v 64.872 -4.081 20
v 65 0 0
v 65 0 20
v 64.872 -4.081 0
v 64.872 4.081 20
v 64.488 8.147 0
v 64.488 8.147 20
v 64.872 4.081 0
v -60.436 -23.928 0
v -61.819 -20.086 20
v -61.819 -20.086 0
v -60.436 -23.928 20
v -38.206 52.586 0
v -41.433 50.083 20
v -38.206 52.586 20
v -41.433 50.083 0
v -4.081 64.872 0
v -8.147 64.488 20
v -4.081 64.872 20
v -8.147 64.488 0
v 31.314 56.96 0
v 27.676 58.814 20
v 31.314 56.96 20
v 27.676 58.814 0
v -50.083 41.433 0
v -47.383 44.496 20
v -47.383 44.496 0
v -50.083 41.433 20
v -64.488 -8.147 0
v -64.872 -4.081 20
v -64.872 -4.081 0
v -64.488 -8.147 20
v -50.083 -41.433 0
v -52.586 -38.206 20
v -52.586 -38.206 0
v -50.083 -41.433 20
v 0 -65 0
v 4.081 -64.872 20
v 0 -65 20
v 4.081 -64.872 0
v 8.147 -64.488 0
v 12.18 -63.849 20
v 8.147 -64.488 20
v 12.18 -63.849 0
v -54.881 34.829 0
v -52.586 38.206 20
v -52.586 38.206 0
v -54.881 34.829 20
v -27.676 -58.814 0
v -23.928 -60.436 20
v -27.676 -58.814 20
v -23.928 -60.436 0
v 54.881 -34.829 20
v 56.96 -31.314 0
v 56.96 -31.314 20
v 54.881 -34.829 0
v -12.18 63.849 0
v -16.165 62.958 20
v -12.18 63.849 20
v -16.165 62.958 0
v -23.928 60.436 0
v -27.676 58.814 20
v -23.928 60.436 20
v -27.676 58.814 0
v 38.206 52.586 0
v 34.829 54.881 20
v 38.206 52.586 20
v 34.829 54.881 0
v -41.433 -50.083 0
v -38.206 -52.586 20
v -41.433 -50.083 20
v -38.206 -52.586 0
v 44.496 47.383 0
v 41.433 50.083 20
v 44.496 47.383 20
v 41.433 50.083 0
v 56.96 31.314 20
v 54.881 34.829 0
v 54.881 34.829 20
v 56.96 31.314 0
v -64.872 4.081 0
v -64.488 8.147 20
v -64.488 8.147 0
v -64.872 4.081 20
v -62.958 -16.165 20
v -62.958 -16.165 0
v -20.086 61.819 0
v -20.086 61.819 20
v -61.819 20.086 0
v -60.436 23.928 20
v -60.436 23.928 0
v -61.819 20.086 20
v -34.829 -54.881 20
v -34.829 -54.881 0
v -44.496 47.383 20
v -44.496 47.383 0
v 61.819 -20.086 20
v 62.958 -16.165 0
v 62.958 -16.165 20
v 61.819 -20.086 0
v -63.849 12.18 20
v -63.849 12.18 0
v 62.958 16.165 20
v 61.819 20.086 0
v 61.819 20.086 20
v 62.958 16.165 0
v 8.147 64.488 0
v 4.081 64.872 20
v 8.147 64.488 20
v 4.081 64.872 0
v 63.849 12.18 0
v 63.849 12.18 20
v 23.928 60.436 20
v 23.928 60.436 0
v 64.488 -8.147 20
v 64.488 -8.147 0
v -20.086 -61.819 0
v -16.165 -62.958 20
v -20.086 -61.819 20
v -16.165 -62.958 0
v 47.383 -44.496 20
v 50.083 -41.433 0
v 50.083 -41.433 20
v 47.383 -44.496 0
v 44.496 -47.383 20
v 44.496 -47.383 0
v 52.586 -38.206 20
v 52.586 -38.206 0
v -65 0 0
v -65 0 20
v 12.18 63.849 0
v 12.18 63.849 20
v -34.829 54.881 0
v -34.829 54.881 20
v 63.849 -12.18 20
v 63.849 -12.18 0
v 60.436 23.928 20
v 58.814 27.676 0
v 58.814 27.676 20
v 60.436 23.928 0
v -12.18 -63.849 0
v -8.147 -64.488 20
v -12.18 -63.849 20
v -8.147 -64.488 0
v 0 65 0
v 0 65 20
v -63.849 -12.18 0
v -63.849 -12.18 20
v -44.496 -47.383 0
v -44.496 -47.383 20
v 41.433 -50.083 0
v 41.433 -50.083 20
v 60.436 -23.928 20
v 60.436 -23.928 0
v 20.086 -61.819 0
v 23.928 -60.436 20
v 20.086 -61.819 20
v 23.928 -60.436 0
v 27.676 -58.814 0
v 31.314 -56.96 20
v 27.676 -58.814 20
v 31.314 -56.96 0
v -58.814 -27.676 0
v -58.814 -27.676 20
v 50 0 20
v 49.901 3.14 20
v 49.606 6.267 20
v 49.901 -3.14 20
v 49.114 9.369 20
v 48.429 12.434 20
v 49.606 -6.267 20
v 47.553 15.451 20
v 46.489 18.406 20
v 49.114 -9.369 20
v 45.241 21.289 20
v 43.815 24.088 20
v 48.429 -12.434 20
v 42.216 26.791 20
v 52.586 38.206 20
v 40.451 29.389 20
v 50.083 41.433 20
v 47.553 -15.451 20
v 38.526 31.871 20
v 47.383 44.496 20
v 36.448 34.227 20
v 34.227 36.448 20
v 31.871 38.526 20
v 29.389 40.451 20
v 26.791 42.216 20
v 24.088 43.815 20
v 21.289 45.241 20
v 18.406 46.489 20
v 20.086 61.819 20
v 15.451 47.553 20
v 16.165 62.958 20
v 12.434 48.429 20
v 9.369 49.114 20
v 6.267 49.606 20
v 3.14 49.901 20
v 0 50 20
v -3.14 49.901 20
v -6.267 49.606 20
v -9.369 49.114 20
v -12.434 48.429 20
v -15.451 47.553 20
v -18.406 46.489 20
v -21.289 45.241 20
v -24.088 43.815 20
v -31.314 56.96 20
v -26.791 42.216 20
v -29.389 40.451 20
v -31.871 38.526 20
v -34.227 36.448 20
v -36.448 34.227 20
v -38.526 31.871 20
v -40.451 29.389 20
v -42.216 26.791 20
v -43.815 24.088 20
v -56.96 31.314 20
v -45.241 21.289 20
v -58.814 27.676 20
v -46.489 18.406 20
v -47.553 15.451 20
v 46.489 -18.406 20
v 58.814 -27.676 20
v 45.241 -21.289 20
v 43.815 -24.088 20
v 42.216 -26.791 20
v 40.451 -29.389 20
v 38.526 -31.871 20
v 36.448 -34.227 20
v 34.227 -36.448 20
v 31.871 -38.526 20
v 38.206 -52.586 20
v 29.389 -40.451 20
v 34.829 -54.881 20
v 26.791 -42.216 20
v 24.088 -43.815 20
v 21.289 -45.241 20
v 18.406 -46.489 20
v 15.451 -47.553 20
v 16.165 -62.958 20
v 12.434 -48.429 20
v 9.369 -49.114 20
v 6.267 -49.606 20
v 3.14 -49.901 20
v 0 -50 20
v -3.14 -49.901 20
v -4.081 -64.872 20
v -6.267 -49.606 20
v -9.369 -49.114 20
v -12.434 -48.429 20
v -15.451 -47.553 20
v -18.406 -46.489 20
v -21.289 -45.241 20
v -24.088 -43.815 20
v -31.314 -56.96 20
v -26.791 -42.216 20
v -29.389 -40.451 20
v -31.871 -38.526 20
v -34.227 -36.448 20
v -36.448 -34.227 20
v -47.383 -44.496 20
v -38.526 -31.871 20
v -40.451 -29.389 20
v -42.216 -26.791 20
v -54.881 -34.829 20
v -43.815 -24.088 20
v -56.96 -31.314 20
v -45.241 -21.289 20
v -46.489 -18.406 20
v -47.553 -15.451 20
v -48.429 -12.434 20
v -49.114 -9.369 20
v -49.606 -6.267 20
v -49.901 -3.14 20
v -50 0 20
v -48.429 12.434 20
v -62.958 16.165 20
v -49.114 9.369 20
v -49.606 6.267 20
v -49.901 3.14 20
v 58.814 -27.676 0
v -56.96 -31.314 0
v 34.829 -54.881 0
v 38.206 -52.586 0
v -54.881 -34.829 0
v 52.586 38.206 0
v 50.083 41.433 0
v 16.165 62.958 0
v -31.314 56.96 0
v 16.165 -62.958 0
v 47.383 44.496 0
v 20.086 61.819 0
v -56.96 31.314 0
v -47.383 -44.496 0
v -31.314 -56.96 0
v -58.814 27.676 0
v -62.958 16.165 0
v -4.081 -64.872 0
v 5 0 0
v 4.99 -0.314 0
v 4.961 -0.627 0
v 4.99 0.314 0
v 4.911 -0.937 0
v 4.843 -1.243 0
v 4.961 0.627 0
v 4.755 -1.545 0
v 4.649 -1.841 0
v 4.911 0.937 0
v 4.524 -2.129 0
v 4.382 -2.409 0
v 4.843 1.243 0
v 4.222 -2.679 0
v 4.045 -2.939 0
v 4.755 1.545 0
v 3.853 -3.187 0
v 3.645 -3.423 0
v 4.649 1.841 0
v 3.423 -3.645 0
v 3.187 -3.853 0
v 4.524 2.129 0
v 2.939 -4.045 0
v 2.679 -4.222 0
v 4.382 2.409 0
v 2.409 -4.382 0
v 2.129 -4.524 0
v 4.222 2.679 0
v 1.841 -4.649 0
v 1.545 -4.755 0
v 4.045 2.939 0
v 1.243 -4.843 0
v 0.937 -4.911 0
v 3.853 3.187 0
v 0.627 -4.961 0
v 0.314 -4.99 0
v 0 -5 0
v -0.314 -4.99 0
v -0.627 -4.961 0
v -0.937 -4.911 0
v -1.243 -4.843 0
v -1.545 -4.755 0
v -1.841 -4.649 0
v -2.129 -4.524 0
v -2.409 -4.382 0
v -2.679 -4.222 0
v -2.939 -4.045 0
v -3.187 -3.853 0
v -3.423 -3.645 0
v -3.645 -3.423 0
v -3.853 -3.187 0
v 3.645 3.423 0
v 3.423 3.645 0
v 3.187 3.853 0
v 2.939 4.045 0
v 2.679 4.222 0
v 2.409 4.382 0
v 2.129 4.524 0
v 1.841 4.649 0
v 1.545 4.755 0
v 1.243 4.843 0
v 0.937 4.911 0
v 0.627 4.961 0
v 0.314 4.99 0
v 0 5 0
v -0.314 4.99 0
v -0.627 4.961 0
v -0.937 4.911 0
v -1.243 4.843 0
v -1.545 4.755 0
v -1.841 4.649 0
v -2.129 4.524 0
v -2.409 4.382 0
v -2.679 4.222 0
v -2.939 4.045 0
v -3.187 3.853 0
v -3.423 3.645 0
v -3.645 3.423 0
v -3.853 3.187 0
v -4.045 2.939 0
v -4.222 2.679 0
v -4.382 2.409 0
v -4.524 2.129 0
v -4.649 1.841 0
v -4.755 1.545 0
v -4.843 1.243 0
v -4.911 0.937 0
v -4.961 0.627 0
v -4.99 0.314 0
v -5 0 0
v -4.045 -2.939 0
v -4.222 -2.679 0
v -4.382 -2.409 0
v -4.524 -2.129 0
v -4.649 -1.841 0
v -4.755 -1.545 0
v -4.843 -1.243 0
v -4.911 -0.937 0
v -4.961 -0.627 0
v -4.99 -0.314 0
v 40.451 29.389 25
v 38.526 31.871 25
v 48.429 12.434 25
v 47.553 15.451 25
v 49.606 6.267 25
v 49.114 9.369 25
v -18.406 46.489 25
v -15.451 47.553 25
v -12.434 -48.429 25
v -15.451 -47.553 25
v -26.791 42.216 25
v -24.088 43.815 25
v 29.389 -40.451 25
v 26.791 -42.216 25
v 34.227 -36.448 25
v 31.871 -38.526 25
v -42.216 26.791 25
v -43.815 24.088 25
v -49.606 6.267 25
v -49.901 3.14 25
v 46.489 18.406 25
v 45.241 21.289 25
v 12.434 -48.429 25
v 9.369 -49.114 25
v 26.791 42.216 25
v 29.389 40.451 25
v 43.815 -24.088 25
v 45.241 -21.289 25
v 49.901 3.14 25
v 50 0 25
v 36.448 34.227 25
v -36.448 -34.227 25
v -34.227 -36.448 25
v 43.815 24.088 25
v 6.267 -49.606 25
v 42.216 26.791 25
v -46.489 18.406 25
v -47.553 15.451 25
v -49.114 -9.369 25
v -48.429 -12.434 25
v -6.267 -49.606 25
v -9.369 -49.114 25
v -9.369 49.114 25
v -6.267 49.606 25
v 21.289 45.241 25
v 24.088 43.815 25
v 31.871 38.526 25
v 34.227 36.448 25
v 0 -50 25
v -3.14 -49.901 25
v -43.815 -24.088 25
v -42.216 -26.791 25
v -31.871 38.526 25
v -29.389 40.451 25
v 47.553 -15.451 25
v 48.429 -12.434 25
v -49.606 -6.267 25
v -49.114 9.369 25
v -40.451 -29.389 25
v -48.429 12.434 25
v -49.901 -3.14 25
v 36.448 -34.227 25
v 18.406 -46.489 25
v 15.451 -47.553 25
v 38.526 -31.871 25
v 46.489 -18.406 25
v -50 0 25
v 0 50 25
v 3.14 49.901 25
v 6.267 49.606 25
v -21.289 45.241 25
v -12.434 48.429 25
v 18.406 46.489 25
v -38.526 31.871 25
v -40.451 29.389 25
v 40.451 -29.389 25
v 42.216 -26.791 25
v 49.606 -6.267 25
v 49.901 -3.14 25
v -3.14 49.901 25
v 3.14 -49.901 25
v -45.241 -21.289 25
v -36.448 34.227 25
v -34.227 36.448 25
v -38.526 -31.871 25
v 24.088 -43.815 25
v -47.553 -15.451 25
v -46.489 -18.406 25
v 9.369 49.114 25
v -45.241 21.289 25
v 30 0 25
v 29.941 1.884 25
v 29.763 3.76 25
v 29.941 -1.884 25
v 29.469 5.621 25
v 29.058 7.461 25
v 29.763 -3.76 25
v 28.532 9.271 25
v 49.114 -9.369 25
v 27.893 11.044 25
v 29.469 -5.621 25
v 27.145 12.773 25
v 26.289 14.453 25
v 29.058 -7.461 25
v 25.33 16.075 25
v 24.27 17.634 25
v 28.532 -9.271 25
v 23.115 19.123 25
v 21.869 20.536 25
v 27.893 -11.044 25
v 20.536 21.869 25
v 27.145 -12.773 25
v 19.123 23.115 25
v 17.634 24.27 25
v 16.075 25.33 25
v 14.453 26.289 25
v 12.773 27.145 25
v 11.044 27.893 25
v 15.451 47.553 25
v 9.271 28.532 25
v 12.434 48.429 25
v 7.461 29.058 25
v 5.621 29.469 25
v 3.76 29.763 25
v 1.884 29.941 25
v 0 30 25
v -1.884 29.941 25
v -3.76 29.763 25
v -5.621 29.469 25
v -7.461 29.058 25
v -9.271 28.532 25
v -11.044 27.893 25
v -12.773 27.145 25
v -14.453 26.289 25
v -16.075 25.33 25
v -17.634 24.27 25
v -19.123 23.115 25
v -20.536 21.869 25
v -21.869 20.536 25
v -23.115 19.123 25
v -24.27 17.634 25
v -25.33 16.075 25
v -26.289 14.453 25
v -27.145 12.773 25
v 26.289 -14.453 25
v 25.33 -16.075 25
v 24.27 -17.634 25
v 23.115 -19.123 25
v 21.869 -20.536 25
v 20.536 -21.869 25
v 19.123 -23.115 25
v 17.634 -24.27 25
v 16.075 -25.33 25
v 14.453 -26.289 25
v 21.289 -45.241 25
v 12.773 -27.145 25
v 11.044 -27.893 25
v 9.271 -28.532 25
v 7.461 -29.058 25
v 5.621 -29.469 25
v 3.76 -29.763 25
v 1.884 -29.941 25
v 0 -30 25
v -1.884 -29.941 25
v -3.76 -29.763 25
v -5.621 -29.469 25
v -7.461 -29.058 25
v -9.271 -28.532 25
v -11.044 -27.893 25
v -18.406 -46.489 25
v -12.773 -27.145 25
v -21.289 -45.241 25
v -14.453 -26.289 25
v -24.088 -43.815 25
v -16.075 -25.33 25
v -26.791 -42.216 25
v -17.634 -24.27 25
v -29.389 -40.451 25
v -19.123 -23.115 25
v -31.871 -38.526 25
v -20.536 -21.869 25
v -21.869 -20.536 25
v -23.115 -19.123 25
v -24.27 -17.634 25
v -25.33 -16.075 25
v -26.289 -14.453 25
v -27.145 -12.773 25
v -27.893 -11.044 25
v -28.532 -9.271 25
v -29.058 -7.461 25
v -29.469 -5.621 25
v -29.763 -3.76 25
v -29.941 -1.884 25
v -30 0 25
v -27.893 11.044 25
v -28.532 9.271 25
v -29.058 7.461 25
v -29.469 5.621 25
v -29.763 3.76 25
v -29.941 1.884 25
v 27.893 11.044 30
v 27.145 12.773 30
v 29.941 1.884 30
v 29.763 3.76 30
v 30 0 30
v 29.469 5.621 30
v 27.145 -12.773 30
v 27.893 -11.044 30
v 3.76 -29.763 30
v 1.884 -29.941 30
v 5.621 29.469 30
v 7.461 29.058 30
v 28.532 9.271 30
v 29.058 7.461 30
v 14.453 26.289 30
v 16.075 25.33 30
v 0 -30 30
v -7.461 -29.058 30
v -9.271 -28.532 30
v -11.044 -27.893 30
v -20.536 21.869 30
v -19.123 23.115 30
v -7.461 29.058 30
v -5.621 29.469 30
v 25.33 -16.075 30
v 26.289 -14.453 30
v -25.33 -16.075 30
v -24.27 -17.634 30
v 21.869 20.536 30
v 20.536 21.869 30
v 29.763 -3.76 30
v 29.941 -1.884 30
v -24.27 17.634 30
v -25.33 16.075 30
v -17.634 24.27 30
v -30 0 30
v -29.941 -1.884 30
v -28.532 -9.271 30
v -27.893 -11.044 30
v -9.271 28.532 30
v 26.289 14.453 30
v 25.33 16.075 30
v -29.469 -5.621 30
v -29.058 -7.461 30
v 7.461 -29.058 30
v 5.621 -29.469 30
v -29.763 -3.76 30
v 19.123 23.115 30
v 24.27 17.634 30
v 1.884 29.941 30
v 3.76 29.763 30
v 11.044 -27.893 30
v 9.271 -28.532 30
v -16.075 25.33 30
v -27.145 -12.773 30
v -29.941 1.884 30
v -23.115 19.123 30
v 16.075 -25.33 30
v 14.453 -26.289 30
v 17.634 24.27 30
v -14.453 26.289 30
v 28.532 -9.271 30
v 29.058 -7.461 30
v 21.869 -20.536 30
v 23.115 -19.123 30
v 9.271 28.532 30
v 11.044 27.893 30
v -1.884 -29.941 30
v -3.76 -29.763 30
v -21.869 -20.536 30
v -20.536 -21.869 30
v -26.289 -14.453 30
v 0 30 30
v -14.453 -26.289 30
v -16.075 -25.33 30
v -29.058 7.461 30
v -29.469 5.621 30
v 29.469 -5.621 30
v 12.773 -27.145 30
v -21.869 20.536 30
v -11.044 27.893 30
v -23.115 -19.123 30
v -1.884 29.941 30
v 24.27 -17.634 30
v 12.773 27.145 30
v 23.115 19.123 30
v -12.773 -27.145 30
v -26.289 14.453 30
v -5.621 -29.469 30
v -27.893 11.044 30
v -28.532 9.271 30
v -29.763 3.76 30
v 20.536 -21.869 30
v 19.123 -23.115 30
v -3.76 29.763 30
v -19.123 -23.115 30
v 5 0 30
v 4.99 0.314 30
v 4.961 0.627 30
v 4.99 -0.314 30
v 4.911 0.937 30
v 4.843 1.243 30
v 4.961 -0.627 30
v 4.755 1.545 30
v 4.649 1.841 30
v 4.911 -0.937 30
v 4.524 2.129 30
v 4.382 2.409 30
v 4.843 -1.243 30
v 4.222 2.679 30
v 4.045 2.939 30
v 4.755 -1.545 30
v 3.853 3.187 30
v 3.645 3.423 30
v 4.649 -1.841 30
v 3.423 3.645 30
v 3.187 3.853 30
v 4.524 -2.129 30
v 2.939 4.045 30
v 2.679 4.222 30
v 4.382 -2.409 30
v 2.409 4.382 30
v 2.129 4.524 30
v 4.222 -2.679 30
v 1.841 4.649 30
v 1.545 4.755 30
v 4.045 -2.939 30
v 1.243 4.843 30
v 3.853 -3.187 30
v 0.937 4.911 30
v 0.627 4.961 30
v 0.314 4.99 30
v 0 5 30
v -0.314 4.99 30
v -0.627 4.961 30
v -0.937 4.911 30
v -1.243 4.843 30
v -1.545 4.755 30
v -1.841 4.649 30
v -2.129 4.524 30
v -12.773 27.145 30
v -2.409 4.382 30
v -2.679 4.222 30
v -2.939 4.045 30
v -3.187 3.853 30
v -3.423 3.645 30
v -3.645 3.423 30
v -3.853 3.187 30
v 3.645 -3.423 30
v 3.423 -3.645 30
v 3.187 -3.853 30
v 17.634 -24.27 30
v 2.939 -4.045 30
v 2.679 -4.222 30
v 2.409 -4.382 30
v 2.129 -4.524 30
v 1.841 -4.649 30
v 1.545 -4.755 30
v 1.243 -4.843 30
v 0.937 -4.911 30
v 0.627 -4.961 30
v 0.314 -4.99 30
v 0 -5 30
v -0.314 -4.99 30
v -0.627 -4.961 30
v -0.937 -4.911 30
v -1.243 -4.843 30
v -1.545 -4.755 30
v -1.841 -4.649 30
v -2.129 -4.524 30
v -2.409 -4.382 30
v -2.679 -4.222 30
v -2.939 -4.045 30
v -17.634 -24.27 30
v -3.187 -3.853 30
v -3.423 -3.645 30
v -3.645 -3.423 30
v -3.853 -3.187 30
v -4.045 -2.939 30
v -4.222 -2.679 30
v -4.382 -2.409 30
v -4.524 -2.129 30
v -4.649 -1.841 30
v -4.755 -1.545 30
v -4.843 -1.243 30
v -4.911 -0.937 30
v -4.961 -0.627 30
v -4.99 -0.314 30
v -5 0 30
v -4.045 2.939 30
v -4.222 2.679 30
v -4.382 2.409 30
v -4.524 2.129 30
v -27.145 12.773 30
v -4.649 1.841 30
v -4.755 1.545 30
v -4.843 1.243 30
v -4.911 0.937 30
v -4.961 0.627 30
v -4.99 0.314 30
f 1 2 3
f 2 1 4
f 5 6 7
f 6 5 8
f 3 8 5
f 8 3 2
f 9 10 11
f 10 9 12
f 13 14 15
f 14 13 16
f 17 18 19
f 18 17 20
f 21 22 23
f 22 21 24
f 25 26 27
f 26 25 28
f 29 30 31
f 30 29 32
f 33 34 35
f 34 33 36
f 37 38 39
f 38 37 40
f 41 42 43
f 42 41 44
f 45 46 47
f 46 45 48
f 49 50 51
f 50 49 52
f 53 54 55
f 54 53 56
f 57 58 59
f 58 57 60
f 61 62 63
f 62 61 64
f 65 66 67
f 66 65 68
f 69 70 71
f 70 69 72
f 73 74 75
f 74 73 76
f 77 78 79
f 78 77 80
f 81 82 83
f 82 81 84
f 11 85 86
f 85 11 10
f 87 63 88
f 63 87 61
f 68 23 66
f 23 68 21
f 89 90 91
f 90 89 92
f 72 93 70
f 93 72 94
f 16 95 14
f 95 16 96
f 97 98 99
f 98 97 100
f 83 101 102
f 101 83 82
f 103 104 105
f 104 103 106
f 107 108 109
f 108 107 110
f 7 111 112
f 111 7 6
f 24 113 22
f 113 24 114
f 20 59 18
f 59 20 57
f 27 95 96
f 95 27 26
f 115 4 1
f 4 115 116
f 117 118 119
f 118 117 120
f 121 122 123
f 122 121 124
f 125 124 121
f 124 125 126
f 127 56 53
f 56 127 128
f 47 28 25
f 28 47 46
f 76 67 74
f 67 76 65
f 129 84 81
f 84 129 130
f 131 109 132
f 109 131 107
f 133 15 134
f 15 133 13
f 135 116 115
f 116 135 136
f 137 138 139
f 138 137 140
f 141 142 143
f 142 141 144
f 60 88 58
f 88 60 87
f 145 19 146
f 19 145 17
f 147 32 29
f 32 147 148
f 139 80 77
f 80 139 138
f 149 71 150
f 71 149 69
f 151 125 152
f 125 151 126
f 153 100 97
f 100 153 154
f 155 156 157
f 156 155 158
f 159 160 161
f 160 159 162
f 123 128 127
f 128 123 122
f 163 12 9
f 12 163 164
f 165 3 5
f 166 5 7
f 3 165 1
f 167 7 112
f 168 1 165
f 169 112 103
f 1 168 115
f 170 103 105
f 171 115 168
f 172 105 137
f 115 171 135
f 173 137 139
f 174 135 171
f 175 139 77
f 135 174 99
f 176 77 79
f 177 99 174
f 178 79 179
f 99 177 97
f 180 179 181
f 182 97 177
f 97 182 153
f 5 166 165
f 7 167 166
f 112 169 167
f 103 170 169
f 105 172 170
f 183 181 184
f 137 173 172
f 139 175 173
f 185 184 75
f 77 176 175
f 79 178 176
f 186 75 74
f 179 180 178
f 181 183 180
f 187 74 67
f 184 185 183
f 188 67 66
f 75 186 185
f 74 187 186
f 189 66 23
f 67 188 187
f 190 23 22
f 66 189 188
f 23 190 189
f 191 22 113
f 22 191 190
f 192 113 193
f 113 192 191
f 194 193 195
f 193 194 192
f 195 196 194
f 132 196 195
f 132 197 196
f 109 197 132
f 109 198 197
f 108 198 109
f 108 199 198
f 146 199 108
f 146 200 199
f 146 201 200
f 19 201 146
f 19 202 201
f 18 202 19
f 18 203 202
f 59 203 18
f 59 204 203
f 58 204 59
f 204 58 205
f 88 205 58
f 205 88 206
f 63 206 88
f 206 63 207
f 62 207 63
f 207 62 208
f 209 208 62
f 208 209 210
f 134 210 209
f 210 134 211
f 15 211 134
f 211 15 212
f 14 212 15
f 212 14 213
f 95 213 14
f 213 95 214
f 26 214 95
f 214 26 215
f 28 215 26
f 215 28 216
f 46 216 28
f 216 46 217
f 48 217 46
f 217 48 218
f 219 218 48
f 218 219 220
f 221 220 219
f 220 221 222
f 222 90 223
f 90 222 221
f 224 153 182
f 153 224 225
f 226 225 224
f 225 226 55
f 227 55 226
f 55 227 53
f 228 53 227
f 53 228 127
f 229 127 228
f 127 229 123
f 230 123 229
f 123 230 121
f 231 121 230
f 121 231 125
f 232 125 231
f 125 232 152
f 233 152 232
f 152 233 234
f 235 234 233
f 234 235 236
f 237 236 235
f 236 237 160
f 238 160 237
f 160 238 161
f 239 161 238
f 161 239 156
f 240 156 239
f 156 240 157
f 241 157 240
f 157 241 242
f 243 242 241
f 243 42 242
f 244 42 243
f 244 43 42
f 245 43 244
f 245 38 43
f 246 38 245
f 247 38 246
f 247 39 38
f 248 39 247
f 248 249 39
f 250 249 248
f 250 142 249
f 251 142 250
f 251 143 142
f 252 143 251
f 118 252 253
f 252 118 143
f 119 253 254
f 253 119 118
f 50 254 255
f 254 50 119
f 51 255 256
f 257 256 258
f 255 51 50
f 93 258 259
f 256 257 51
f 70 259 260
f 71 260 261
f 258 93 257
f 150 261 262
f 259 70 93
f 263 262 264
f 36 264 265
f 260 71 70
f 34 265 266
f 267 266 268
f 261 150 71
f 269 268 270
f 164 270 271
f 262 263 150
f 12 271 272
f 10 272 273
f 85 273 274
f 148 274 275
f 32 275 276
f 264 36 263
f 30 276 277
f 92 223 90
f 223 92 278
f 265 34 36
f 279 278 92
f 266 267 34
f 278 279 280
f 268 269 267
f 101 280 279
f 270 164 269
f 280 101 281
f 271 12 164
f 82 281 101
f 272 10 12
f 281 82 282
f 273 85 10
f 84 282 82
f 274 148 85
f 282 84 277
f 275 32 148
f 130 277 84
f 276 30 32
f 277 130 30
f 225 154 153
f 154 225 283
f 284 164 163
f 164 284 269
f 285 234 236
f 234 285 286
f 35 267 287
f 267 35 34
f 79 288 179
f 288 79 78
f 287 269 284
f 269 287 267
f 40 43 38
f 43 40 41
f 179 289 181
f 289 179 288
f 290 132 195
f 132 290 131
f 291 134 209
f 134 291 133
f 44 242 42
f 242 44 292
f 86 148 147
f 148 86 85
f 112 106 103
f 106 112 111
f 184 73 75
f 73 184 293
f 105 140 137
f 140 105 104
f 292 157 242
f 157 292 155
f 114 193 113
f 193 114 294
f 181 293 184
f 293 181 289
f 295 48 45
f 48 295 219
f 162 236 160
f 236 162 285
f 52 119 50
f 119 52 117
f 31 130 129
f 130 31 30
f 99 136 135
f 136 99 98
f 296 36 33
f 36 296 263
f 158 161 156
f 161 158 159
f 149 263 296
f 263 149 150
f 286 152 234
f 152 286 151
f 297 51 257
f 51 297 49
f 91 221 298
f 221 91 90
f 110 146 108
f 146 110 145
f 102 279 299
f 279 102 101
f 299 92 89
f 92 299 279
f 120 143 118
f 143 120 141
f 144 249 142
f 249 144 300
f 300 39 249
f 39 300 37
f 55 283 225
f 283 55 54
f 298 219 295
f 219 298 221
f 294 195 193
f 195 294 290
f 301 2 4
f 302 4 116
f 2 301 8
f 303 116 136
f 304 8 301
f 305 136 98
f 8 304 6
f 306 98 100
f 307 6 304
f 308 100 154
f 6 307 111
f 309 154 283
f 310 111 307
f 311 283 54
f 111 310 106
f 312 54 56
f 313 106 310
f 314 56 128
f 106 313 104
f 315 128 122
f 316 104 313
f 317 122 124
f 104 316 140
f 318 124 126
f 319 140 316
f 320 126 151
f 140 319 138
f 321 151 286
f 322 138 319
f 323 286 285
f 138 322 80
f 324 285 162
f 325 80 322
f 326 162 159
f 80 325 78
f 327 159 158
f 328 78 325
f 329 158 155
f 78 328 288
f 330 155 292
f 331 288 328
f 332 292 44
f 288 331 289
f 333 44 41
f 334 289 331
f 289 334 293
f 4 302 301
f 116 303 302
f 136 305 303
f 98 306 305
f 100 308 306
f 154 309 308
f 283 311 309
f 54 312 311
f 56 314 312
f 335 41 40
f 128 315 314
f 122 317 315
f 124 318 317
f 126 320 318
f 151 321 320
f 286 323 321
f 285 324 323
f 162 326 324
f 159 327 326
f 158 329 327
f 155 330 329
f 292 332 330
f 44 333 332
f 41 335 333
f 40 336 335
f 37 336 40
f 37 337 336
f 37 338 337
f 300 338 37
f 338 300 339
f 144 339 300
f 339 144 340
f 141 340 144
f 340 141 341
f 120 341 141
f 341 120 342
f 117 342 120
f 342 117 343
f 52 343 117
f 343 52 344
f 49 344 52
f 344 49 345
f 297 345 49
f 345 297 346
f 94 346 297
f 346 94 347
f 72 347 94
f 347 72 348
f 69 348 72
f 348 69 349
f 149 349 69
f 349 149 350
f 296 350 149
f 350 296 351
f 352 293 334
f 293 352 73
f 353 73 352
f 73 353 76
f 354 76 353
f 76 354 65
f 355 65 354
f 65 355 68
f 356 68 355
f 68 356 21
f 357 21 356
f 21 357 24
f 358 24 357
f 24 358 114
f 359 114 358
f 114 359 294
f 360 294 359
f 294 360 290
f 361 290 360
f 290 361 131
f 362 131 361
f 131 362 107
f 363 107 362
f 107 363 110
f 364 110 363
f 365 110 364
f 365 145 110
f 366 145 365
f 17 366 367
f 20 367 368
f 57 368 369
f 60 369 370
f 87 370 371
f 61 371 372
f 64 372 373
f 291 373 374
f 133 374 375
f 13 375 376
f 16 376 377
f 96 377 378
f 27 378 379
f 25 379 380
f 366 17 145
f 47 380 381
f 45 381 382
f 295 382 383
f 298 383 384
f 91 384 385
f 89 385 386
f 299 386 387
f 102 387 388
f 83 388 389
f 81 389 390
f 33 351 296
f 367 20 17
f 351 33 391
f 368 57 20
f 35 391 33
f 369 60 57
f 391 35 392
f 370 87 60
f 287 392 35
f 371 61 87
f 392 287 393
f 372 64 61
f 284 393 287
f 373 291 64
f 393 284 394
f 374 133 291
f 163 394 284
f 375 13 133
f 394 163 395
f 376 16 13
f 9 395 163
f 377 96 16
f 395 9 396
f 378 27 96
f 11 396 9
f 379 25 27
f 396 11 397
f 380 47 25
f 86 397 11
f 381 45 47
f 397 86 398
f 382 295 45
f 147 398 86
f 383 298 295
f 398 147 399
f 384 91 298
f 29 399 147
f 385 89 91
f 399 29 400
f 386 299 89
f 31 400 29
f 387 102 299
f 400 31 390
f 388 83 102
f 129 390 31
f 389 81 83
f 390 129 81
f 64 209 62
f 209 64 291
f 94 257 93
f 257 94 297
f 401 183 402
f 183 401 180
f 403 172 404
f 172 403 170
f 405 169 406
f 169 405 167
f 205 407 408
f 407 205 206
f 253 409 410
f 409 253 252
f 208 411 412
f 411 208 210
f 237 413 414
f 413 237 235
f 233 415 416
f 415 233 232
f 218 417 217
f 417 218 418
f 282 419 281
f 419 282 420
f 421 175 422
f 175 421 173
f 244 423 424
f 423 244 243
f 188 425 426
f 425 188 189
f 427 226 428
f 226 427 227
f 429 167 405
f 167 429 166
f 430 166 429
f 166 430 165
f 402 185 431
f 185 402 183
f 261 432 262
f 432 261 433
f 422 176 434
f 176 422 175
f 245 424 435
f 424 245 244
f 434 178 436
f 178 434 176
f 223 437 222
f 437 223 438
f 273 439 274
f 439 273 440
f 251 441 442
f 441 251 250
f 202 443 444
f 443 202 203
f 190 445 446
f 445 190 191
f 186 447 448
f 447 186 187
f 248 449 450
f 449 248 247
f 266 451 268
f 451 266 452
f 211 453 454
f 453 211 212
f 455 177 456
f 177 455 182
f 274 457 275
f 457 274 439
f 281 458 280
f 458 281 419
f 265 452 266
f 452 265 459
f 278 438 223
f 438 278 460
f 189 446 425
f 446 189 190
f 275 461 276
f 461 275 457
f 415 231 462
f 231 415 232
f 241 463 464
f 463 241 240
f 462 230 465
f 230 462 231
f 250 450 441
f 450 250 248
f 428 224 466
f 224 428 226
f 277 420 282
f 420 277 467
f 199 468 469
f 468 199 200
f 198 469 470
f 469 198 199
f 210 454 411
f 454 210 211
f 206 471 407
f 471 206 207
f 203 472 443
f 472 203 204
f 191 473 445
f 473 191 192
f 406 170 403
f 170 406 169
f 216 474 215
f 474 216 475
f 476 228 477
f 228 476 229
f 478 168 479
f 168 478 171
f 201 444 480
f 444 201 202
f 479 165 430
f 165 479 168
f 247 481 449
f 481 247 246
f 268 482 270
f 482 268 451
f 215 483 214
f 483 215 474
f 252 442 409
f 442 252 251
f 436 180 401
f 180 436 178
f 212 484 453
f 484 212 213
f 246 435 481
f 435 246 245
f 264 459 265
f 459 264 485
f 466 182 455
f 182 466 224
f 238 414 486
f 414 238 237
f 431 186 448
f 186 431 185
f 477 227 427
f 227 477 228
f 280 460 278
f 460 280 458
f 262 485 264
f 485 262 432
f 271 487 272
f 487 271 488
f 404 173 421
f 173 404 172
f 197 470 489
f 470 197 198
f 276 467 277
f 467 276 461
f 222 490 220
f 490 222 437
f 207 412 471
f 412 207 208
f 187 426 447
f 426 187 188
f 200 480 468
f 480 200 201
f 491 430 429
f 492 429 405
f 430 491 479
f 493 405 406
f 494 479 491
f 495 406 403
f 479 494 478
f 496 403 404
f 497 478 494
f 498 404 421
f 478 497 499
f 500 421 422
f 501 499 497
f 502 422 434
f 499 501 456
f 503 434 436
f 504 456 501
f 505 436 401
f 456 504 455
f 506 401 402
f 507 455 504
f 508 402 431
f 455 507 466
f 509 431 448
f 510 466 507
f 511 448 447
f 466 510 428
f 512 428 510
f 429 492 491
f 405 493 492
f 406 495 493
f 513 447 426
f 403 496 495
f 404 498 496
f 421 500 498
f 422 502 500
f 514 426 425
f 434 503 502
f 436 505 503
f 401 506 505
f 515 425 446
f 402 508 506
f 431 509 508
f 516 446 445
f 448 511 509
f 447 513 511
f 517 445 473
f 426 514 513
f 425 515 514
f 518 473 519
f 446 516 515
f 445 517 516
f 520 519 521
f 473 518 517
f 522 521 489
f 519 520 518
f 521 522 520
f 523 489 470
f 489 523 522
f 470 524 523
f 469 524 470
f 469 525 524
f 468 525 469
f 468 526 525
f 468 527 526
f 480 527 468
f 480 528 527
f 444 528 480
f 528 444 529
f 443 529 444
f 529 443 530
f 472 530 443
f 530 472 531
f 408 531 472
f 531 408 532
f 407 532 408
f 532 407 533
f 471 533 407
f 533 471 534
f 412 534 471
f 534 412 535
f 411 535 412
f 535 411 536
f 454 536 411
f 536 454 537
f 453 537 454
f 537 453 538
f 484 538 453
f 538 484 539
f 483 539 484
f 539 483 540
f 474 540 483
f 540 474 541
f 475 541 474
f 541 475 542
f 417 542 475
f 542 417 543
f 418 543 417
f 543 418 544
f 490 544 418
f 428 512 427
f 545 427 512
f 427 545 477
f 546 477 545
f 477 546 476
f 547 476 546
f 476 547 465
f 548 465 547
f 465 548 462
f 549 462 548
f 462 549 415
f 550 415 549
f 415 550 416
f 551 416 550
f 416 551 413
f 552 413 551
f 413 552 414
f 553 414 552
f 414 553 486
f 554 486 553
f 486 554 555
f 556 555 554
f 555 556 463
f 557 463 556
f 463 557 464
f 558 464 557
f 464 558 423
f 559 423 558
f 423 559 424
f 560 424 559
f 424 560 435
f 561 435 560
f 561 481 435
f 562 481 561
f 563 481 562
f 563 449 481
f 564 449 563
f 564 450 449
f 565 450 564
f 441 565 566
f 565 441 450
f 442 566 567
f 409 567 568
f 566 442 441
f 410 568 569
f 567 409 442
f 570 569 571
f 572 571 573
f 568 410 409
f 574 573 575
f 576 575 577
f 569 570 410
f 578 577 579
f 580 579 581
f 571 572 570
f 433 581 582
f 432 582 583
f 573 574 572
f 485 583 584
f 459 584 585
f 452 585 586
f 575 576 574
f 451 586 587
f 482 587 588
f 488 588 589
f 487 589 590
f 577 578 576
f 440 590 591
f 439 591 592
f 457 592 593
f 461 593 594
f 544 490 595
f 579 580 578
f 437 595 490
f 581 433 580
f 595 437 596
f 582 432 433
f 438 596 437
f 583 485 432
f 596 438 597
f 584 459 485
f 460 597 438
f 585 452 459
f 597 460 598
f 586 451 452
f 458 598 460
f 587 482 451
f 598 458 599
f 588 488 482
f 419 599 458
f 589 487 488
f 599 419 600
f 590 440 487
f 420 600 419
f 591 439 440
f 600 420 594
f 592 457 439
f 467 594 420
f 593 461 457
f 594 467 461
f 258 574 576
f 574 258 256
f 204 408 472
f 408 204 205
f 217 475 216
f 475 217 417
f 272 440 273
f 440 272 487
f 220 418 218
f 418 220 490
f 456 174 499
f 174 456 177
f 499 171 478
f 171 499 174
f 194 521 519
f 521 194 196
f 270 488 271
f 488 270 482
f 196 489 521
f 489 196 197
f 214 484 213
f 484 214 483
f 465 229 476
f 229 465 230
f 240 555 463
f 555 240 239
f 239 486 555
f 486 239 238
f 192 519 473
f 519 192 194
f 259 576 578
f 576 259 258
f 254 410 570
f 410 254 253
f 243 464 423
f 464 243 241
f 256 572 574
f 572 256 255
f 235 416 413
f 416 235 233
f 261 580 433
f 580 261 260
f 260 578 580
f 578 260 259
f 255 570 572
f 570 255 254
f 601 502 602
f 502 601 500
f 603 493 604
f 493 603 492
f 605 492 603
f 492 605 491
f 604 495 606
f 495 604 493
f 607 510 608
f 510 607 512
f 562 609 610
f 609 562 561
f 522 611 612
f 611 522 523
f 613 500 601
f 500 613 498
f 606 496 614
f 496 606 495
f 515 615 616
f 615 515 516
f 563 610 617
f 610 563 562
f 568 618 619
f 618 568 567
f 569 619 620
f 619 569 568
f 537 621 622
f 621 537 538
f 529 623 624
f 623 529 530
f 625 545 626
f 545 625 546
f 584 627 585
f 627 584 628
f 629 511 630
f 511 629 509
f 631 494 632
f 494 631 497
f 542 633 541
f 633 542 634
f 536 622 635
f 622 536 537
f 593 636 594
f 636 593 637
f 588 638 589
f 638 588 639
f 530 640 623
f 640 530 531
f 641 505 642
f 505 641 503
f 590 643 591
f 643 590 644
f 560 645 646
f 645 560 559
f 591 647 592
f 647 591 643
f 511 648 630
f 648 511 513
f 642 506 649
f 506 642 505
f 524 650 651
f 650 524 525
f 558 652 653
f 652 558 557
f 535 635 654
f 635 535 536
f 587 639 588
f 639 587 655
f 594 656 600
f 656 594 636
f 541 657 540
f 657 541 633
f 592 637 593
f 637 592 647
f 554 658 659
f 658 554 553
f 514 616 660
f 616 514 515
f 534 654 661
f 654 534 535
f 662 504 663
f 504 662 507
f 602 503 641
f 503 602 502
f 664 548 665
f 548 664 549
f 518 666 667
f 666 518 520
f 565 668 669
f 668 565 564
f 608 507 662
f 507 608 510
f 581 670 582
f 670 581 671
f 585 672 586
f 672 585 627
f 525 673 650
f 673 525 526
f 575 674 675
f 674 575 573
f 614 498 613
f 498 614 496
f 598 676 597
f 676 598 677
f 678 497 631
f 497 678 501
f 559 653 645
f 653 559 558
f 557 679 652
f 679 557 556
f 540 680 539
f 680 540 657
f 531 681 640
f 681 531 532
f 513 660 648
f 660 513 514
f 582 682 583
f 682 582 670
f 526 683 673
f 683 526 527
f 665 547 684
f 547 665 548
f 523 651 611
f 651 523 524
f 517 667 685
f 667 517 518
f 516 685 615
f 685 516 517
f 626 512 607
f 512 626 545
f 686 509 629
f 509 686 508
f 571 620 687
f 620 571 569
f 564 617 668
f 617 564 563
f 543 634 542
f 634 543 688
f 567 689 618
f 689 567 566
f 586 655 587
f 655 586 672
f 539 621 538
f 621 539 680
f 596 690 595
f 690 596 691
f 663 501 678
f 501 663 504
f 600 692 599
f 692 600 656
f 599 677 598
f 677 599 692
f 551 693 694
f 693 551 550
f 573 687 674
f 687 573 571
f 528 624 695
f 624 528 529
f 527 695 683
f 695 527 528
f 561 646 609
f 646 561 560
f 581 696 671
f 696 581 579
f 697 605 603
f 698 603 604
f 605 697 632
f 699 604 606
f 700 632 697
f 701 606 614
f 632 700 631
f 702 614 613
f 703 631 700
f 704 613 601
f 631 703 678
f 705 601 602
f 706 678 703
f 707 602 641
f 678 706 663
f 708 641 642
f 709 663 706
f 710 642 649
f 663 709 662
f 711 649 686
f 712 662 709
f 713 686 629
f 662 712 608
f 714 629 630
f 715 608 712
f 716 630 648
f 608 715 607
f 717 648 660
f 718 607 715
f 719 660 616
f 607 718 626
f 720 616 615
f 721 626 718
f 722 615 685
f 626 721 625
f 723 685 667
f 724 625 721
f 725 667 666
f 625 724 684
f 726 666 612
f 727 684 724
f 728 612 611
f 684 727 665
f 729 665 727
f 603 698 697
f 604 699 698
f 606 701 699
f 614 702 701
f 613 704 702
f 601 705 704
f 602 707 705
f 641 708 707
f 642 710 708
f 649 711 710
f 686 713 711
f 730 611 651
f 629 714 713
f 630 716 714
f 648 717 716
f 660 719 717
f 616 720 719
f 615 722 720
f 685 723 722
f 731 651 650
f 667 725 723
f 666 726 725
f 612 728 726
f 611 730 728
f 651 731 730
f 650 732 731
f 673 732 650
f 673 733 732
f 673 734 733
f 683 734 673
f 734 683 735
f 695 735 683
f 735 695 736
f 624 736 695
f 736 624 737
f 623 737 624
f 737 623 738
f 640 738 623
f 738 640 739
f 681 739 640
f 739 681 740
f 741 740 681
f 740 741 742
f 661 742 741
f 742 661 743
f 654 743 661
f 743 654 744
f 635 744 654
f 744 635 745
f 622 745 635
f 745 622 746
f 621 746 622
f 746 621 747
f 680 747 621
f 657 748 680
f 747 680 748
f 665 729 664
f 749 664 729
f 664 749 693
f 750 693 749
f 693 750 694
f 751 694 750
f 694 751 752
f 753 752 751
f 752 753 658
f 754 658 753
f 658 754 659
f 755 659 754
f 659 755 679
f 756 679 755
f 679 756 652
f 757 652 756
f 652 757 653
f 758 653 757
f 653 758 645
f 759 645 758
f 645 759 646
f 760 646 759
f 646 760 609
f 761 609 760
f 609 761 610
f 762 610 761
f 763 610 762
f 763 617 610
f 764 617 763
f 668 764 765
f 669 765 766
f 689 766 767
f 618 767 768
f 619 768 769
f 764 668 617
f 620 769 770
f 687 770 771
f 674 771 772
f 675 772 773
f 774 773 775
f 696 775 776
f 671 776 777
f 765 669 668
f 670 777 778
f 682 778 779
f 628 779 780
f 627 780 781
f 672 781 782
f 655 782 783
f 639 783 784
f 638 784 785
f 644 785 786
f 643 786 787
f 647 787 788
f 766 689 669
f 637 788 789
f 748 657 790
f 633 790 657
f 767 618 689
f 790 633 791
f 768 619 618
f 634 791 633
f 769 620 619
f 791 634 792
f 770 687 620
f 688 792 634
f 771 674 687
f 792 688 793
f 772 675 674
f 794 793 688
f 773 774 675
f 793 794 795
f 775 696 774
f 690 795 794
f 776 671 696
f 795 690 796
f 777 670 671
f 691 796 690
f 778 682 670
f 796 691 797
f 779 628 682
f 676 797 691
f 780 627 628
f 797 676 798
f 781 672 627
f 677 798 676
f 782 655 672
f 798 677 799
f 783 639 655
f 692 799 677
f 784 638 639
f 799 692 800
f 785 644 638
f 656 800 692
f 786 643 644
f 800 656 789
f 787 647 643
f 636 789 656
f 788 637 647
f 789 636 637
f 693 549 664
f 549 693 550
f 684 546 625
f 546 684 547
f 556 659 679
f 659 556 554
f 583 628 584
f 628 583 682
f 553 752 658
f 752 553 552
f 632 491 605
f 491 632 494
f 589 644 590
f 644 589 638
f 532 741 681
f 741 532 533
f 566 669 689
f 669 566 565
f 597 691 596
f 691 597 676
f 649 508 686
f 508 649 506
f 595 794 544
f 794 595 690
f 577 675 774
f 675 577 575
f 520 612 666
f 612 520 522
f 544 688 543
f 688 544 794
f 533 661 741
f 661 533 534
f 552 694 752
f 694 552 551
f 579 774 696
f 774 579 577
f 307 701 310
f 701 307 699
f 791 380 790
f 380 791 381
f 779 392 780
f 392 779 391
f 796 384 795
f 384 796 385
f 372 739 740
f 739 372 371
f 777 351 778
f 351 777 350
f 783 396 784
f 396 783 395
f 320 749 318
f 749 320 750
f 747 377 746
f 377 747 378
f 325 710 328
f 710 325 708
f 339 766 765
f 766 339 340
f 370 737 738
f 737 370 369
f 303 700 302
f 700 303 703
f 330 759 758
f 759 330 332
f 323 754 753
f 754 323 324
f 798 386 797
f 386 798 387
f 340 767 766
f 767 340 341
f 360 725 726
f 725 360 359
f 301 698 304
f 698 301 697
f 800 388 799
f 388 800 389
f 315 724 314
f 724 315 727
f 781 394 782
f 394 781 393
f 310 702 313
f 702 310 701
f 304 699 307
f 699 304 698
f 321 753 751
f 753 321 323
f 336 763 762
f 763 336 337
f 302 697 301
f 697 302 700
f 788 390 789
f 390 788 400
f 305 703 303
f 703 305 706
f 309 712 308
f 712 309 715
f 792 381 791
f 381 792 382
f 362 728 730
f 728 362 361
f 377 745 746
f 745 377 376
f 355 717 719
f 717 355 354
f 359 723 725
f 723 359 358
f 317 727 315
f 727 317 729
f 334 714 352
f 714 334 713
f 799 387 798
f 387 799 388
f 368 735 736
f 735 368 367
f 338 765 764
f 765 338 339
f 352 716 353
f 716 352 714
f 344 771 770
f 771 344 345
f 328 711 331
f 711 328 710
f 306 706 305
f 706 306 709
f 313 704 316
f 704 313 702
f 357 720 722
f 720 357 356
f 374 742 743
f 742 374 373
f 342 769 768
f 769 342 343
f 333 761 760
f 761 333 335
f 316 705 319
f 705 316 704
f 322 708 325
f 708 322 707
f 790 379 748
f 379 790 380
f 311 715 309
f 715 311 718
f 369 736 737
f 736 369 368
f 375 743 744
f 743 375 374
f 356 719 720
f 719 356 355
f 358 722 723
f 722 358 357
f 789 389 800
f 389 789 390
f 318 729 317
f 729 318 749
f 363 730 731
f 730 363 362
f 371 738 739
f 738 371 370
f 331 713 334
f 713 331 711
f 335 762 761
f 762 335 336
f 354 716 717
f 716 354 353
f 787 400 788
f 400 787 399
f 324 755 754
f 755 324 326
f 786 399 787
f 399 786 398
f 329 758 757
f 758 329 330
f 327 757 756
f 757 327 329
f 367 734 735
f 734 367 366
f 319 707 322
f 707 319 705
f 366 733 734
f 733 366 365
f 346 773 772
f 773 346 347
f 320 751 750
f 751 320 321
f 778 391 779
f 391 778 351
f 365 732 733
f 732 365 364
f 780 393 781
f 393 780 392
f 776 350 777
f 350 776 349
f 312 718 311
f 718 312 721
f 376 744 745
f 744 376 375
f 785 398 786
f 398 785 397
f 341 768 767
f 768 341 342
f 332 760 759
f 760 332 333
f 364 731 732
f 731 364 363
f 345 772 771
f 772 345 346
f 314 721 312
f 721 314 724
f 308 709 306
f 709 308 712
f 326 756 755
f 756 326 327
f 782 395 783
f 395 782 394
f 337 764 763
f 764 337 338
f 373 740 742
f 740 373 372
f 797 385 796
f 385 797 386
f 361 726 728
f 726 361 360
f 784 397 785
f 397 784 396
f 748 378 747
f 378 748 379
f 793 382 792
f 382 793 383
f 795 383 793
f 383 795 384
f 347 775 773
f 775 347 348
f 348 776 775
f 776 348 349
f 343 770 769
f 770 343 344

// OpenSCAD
$fn=100;
crossGuardD=130;
crossGuardH=20;
crossGuardMidD=100;
crossGuardMidH=25;
crossGuardInnerD=60;
crossGuardInnerH=30;

module crossGuard() {
cylinder(h=crossGuardH,d=crossGuardD);
cylinder(h=crossGuardMidH,d=crossGuardMidD);
cylinder(h=crossGuardInnerH,d=crossGuardInnerD);
}

difference() {
  color("gold") crossGuard();
  #translate([0,0,-.1]) cylinder(h=crossGuardInnerH+.2,d=10);
}
